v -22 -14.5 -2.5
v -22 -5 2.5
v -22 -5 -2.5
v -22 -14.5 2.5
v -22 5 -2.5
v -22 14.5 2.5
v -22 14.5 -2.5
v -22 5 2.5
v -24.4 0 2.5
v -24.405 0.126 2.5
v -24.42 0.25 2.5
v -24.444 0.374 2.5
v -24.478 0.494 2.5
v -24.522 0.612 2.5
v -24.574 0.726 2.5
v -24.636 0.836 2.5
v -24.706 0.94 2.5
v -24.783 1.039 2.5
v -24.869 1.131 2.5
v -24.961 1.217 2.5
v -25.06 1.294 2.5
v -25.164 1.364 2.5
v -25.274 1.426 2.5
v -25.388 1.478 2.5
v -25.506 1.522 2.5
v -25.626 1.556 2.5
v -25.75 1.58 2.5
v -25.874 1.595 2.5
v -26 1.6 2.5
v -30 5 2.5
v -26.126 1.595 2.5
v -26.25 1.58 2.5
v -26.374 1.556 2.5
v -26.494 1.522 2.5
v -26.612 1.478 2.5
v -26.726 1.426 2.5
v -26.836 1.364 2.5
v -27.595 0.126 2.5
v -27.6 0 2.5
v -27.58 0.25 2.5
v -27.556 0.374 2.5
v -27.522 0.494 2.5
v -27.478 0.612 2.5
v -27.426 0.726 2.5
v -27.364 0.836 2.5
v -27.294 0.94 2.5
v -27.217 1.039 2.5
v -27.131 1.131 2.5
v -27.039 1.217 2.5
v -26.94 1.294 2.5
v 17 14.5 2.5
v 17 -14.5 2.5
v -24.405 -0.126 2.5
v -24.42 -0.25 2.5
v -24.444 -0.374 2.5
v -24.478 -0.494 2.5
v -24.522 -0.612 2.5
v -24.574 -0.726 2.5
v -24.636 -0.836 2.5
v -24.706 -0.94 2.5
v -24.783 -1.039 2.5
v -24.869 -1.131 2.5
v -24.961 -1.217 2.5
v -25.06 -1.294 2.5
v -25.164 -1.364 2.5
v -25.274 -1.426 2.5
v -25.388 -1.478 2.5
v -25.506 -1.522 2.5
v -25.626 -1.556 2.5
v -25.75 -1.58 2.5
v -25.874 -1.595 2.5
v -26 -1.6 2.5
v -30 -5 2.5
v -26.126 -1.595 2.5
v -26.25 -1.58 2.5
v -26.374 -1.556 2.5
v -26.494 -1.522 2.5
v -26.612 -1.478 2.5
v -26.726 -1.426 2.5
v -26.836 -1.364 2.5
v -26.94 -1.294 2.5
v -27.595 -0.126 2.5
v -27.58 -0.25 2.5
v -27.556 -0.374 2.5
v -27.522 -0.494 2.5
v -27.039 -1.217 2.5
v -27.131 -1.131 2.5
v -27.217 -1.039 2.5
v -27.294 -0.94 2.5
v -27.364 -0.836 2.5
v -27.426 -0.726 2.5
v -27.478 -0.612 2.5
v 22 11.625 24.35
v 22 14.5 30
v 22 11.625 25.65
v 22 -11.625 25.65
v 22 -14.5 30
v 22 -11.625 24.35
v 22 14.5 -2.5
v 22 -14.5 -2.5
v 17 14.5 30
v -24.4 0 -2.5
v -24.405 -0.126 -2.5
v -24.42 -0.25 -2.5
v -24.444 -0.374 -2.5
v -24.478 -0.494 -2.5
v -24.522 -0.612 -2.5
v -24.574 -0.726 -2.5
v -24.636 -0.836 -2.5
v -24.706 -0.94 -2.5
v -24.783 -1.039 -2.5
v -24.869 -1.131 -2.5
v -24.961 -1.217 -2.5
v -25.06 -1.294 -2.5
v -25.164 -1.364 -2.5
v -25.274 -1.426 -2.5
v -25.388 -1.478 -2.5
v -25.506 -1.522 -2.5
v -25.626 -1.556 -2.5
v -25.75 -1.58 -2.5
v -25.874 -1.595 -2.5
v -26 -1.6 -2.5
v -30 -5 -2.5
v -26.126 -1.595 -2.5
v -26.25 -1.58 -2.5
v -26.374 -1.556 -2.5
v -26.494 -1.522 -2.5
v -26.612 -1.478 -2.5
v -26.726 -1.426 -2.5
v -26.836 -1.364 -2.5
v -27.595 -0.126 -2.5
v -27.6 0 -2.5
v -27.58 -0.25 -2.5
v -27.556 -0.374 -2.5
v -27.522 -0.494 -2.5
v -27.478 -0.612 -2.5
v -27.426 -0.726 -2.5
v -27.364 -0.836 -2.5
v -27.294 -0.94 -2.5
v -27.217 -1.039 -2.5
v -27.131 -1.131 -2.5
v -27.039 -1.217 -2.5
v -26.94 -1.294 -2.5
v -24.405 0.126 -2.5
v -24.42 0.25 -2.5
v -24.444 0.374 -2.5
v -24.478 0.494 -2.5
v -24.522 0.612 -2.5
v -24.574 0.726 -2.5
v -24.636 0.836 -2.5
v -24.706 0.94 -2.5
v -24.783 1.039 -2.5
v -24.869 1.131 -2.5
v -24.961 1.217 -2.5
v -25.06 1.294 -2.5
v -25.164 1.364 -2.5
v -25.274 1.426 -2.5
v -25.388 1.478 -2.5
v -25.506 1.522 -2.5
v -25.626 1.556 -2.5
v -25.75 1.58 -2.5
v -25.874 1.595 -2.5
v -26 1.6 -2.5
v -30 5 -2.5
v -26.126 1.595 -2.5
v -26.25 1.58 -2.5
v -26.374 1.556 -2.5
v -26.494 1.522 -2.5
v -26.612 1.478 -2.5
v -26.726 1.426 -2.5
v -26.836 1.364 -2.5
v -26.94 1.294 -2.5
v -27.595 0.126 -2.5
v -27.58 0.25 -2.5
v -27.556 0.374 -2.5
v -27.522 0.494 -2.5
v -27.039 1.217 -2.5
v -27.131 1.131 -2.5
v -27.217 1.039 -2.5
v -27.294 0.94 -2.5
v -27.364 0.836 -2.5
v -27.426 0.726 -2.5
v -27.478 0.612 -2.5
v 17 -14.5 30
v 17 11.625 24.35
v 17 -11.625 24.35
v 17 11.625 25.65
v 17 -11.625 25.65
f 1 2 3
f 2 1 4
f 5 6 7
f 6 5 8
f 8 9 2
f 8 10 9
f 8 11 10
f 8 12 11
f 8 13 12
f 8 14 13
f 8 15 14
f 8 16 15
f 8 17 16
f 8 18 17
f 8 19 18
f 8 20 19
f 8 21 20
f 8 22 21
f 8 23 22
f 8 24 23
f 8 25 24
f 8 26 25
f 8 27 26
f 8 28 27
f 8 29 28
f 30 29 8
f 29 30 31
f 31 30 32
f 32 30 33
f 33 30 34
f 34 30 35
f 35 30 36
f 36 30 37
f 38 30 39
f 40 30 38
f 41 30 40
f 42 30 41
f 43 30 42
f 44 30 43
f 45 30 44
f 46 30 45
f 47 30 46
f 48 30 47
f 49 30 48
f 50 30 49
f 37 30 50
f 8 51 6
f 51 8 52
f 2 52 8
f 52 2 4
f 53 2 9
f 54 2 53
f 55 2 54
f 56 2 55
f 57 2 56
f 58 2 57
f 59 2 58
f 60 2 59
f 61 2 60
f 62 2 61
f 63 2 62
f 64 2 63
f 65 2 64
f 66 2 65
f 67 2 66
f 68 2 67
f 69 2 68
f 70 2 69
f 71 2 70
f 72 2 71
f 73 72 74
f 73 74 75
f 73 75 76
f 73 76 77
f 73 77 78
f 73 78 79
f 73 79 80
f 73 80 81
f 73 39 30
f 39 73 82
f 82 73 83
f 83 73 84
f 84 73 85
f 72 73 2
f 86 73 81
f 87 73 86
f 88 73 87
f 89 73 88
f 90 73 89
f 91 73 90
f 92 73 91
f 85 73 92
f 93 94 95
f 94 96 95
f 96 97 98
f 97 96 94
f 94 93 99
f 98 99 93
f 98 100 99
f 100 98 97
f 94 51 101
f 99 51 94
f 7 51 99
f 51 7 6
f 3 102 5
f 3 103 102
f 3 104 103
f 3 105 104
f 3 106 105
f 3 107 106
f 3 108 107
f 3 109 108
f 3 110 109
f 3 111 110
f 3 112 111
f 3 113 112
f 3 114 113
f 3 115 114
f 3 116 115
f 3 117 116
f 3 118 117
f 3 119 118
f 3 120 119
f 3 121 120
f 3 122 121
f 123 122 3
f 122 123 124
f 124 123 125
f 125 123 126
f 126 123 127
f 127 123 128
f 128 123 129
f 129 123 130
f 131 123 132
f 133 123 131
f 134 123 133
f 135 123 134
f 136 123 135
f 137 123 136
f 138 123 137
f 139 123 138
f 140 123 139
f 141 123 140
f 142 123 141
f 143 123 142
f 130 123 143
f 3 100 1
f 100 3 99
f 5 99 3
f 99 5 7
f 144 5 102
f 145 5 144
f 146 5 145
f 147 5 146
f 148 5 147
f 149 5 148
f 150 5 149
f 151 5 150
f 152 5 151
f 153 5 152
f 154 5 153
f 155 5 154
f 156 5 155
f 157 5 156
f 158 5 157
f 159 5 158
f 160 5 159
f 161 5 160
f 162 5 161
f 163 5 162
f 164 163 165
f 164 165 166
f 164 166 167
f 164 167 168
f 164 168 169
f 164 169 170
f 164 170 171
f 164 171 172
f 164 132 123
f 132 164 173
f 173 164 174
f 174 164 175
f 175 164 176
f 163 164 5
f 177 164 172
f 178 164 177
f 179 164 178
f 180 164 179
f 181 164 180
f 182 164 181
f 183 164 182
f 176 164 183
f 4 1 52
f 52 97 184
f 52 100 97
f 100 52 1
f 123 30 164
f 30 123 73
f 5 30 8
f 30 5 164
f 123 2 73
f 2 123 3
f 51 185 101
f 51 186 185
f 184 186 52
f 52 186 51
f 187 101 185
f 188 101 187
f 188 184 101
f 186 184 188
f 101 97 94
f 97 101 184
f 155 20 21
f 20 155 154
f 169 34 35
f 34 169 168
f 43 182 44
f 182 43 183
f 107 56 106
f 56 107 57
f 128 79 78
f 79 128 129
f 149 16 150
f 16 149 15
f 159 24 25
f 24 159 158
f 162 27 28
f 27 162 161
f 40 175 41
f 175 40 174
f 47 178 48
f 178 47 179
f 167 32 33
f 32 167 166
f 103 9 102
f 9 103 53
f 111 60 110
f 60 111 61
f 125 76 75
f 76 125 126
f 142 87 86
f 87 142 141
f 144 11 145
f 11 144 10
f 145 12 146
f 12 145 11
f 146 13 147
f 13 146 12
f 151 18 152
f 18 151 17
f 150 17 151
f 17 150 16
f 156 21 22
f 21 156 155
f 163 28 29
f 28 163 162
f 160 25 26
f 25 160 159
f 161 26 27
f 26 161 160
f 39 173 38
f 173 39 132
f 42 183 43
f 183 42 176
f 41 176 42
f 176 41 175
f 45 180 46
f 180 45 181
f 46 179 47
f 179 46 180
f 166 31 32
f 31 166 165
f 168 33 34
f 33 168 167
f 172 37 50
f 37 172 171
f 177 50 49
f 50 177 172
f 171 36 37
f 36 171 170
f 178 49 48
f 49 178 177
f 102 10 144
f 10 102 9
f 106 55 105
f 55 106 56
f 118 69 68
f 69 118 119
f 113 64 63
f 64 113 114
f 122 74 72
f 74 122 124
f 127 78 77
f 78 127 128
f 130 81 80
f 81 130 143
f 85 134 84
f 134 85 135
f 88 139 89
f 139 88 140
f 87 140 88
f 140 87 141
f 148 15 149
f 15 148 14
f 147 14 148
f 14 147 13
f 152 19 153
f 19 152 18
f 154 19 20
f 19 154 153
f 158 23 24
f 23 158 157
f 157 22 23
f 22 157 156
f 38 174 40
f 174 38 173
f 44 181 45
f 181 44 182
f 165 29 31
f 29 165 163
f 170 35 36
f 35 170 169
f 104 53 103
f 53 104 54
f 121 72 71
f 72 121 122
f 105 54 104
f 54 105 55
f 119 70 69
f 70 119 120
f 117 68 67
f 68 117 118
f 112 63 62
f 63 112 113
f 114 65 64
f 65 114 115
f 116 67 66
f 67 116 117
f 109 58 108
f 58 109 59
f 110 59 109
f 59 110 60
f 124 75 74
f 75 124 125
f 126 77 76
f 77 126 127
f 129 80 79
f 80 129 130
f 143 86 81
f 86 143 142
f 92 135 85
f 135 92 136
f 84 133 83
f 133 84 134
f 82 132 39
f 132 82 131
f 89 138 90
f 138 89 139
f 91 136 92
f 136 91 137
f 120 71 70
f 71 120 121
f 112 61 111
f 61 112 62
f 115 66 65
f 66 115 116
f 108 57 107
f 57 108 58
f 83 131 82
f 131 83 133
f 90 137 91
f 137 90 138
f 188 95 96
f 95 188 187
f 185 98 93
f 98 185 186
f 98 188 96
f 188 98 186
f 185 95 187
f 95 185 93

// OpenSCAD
difference() {

union() {

cube([44,29,5], center=true);
    translate([-24,0,0]) cube([12,10,5], center=true);
    translate([19.5,0,15]) cube([5,29,30], center=true);
    }
translate([-26,0,0]) cylinder(r=1.6, h=10, center=true,$fn=80);
    translate([19.5,0,25]) cube([10,23.25,1.3], center=true);
}
